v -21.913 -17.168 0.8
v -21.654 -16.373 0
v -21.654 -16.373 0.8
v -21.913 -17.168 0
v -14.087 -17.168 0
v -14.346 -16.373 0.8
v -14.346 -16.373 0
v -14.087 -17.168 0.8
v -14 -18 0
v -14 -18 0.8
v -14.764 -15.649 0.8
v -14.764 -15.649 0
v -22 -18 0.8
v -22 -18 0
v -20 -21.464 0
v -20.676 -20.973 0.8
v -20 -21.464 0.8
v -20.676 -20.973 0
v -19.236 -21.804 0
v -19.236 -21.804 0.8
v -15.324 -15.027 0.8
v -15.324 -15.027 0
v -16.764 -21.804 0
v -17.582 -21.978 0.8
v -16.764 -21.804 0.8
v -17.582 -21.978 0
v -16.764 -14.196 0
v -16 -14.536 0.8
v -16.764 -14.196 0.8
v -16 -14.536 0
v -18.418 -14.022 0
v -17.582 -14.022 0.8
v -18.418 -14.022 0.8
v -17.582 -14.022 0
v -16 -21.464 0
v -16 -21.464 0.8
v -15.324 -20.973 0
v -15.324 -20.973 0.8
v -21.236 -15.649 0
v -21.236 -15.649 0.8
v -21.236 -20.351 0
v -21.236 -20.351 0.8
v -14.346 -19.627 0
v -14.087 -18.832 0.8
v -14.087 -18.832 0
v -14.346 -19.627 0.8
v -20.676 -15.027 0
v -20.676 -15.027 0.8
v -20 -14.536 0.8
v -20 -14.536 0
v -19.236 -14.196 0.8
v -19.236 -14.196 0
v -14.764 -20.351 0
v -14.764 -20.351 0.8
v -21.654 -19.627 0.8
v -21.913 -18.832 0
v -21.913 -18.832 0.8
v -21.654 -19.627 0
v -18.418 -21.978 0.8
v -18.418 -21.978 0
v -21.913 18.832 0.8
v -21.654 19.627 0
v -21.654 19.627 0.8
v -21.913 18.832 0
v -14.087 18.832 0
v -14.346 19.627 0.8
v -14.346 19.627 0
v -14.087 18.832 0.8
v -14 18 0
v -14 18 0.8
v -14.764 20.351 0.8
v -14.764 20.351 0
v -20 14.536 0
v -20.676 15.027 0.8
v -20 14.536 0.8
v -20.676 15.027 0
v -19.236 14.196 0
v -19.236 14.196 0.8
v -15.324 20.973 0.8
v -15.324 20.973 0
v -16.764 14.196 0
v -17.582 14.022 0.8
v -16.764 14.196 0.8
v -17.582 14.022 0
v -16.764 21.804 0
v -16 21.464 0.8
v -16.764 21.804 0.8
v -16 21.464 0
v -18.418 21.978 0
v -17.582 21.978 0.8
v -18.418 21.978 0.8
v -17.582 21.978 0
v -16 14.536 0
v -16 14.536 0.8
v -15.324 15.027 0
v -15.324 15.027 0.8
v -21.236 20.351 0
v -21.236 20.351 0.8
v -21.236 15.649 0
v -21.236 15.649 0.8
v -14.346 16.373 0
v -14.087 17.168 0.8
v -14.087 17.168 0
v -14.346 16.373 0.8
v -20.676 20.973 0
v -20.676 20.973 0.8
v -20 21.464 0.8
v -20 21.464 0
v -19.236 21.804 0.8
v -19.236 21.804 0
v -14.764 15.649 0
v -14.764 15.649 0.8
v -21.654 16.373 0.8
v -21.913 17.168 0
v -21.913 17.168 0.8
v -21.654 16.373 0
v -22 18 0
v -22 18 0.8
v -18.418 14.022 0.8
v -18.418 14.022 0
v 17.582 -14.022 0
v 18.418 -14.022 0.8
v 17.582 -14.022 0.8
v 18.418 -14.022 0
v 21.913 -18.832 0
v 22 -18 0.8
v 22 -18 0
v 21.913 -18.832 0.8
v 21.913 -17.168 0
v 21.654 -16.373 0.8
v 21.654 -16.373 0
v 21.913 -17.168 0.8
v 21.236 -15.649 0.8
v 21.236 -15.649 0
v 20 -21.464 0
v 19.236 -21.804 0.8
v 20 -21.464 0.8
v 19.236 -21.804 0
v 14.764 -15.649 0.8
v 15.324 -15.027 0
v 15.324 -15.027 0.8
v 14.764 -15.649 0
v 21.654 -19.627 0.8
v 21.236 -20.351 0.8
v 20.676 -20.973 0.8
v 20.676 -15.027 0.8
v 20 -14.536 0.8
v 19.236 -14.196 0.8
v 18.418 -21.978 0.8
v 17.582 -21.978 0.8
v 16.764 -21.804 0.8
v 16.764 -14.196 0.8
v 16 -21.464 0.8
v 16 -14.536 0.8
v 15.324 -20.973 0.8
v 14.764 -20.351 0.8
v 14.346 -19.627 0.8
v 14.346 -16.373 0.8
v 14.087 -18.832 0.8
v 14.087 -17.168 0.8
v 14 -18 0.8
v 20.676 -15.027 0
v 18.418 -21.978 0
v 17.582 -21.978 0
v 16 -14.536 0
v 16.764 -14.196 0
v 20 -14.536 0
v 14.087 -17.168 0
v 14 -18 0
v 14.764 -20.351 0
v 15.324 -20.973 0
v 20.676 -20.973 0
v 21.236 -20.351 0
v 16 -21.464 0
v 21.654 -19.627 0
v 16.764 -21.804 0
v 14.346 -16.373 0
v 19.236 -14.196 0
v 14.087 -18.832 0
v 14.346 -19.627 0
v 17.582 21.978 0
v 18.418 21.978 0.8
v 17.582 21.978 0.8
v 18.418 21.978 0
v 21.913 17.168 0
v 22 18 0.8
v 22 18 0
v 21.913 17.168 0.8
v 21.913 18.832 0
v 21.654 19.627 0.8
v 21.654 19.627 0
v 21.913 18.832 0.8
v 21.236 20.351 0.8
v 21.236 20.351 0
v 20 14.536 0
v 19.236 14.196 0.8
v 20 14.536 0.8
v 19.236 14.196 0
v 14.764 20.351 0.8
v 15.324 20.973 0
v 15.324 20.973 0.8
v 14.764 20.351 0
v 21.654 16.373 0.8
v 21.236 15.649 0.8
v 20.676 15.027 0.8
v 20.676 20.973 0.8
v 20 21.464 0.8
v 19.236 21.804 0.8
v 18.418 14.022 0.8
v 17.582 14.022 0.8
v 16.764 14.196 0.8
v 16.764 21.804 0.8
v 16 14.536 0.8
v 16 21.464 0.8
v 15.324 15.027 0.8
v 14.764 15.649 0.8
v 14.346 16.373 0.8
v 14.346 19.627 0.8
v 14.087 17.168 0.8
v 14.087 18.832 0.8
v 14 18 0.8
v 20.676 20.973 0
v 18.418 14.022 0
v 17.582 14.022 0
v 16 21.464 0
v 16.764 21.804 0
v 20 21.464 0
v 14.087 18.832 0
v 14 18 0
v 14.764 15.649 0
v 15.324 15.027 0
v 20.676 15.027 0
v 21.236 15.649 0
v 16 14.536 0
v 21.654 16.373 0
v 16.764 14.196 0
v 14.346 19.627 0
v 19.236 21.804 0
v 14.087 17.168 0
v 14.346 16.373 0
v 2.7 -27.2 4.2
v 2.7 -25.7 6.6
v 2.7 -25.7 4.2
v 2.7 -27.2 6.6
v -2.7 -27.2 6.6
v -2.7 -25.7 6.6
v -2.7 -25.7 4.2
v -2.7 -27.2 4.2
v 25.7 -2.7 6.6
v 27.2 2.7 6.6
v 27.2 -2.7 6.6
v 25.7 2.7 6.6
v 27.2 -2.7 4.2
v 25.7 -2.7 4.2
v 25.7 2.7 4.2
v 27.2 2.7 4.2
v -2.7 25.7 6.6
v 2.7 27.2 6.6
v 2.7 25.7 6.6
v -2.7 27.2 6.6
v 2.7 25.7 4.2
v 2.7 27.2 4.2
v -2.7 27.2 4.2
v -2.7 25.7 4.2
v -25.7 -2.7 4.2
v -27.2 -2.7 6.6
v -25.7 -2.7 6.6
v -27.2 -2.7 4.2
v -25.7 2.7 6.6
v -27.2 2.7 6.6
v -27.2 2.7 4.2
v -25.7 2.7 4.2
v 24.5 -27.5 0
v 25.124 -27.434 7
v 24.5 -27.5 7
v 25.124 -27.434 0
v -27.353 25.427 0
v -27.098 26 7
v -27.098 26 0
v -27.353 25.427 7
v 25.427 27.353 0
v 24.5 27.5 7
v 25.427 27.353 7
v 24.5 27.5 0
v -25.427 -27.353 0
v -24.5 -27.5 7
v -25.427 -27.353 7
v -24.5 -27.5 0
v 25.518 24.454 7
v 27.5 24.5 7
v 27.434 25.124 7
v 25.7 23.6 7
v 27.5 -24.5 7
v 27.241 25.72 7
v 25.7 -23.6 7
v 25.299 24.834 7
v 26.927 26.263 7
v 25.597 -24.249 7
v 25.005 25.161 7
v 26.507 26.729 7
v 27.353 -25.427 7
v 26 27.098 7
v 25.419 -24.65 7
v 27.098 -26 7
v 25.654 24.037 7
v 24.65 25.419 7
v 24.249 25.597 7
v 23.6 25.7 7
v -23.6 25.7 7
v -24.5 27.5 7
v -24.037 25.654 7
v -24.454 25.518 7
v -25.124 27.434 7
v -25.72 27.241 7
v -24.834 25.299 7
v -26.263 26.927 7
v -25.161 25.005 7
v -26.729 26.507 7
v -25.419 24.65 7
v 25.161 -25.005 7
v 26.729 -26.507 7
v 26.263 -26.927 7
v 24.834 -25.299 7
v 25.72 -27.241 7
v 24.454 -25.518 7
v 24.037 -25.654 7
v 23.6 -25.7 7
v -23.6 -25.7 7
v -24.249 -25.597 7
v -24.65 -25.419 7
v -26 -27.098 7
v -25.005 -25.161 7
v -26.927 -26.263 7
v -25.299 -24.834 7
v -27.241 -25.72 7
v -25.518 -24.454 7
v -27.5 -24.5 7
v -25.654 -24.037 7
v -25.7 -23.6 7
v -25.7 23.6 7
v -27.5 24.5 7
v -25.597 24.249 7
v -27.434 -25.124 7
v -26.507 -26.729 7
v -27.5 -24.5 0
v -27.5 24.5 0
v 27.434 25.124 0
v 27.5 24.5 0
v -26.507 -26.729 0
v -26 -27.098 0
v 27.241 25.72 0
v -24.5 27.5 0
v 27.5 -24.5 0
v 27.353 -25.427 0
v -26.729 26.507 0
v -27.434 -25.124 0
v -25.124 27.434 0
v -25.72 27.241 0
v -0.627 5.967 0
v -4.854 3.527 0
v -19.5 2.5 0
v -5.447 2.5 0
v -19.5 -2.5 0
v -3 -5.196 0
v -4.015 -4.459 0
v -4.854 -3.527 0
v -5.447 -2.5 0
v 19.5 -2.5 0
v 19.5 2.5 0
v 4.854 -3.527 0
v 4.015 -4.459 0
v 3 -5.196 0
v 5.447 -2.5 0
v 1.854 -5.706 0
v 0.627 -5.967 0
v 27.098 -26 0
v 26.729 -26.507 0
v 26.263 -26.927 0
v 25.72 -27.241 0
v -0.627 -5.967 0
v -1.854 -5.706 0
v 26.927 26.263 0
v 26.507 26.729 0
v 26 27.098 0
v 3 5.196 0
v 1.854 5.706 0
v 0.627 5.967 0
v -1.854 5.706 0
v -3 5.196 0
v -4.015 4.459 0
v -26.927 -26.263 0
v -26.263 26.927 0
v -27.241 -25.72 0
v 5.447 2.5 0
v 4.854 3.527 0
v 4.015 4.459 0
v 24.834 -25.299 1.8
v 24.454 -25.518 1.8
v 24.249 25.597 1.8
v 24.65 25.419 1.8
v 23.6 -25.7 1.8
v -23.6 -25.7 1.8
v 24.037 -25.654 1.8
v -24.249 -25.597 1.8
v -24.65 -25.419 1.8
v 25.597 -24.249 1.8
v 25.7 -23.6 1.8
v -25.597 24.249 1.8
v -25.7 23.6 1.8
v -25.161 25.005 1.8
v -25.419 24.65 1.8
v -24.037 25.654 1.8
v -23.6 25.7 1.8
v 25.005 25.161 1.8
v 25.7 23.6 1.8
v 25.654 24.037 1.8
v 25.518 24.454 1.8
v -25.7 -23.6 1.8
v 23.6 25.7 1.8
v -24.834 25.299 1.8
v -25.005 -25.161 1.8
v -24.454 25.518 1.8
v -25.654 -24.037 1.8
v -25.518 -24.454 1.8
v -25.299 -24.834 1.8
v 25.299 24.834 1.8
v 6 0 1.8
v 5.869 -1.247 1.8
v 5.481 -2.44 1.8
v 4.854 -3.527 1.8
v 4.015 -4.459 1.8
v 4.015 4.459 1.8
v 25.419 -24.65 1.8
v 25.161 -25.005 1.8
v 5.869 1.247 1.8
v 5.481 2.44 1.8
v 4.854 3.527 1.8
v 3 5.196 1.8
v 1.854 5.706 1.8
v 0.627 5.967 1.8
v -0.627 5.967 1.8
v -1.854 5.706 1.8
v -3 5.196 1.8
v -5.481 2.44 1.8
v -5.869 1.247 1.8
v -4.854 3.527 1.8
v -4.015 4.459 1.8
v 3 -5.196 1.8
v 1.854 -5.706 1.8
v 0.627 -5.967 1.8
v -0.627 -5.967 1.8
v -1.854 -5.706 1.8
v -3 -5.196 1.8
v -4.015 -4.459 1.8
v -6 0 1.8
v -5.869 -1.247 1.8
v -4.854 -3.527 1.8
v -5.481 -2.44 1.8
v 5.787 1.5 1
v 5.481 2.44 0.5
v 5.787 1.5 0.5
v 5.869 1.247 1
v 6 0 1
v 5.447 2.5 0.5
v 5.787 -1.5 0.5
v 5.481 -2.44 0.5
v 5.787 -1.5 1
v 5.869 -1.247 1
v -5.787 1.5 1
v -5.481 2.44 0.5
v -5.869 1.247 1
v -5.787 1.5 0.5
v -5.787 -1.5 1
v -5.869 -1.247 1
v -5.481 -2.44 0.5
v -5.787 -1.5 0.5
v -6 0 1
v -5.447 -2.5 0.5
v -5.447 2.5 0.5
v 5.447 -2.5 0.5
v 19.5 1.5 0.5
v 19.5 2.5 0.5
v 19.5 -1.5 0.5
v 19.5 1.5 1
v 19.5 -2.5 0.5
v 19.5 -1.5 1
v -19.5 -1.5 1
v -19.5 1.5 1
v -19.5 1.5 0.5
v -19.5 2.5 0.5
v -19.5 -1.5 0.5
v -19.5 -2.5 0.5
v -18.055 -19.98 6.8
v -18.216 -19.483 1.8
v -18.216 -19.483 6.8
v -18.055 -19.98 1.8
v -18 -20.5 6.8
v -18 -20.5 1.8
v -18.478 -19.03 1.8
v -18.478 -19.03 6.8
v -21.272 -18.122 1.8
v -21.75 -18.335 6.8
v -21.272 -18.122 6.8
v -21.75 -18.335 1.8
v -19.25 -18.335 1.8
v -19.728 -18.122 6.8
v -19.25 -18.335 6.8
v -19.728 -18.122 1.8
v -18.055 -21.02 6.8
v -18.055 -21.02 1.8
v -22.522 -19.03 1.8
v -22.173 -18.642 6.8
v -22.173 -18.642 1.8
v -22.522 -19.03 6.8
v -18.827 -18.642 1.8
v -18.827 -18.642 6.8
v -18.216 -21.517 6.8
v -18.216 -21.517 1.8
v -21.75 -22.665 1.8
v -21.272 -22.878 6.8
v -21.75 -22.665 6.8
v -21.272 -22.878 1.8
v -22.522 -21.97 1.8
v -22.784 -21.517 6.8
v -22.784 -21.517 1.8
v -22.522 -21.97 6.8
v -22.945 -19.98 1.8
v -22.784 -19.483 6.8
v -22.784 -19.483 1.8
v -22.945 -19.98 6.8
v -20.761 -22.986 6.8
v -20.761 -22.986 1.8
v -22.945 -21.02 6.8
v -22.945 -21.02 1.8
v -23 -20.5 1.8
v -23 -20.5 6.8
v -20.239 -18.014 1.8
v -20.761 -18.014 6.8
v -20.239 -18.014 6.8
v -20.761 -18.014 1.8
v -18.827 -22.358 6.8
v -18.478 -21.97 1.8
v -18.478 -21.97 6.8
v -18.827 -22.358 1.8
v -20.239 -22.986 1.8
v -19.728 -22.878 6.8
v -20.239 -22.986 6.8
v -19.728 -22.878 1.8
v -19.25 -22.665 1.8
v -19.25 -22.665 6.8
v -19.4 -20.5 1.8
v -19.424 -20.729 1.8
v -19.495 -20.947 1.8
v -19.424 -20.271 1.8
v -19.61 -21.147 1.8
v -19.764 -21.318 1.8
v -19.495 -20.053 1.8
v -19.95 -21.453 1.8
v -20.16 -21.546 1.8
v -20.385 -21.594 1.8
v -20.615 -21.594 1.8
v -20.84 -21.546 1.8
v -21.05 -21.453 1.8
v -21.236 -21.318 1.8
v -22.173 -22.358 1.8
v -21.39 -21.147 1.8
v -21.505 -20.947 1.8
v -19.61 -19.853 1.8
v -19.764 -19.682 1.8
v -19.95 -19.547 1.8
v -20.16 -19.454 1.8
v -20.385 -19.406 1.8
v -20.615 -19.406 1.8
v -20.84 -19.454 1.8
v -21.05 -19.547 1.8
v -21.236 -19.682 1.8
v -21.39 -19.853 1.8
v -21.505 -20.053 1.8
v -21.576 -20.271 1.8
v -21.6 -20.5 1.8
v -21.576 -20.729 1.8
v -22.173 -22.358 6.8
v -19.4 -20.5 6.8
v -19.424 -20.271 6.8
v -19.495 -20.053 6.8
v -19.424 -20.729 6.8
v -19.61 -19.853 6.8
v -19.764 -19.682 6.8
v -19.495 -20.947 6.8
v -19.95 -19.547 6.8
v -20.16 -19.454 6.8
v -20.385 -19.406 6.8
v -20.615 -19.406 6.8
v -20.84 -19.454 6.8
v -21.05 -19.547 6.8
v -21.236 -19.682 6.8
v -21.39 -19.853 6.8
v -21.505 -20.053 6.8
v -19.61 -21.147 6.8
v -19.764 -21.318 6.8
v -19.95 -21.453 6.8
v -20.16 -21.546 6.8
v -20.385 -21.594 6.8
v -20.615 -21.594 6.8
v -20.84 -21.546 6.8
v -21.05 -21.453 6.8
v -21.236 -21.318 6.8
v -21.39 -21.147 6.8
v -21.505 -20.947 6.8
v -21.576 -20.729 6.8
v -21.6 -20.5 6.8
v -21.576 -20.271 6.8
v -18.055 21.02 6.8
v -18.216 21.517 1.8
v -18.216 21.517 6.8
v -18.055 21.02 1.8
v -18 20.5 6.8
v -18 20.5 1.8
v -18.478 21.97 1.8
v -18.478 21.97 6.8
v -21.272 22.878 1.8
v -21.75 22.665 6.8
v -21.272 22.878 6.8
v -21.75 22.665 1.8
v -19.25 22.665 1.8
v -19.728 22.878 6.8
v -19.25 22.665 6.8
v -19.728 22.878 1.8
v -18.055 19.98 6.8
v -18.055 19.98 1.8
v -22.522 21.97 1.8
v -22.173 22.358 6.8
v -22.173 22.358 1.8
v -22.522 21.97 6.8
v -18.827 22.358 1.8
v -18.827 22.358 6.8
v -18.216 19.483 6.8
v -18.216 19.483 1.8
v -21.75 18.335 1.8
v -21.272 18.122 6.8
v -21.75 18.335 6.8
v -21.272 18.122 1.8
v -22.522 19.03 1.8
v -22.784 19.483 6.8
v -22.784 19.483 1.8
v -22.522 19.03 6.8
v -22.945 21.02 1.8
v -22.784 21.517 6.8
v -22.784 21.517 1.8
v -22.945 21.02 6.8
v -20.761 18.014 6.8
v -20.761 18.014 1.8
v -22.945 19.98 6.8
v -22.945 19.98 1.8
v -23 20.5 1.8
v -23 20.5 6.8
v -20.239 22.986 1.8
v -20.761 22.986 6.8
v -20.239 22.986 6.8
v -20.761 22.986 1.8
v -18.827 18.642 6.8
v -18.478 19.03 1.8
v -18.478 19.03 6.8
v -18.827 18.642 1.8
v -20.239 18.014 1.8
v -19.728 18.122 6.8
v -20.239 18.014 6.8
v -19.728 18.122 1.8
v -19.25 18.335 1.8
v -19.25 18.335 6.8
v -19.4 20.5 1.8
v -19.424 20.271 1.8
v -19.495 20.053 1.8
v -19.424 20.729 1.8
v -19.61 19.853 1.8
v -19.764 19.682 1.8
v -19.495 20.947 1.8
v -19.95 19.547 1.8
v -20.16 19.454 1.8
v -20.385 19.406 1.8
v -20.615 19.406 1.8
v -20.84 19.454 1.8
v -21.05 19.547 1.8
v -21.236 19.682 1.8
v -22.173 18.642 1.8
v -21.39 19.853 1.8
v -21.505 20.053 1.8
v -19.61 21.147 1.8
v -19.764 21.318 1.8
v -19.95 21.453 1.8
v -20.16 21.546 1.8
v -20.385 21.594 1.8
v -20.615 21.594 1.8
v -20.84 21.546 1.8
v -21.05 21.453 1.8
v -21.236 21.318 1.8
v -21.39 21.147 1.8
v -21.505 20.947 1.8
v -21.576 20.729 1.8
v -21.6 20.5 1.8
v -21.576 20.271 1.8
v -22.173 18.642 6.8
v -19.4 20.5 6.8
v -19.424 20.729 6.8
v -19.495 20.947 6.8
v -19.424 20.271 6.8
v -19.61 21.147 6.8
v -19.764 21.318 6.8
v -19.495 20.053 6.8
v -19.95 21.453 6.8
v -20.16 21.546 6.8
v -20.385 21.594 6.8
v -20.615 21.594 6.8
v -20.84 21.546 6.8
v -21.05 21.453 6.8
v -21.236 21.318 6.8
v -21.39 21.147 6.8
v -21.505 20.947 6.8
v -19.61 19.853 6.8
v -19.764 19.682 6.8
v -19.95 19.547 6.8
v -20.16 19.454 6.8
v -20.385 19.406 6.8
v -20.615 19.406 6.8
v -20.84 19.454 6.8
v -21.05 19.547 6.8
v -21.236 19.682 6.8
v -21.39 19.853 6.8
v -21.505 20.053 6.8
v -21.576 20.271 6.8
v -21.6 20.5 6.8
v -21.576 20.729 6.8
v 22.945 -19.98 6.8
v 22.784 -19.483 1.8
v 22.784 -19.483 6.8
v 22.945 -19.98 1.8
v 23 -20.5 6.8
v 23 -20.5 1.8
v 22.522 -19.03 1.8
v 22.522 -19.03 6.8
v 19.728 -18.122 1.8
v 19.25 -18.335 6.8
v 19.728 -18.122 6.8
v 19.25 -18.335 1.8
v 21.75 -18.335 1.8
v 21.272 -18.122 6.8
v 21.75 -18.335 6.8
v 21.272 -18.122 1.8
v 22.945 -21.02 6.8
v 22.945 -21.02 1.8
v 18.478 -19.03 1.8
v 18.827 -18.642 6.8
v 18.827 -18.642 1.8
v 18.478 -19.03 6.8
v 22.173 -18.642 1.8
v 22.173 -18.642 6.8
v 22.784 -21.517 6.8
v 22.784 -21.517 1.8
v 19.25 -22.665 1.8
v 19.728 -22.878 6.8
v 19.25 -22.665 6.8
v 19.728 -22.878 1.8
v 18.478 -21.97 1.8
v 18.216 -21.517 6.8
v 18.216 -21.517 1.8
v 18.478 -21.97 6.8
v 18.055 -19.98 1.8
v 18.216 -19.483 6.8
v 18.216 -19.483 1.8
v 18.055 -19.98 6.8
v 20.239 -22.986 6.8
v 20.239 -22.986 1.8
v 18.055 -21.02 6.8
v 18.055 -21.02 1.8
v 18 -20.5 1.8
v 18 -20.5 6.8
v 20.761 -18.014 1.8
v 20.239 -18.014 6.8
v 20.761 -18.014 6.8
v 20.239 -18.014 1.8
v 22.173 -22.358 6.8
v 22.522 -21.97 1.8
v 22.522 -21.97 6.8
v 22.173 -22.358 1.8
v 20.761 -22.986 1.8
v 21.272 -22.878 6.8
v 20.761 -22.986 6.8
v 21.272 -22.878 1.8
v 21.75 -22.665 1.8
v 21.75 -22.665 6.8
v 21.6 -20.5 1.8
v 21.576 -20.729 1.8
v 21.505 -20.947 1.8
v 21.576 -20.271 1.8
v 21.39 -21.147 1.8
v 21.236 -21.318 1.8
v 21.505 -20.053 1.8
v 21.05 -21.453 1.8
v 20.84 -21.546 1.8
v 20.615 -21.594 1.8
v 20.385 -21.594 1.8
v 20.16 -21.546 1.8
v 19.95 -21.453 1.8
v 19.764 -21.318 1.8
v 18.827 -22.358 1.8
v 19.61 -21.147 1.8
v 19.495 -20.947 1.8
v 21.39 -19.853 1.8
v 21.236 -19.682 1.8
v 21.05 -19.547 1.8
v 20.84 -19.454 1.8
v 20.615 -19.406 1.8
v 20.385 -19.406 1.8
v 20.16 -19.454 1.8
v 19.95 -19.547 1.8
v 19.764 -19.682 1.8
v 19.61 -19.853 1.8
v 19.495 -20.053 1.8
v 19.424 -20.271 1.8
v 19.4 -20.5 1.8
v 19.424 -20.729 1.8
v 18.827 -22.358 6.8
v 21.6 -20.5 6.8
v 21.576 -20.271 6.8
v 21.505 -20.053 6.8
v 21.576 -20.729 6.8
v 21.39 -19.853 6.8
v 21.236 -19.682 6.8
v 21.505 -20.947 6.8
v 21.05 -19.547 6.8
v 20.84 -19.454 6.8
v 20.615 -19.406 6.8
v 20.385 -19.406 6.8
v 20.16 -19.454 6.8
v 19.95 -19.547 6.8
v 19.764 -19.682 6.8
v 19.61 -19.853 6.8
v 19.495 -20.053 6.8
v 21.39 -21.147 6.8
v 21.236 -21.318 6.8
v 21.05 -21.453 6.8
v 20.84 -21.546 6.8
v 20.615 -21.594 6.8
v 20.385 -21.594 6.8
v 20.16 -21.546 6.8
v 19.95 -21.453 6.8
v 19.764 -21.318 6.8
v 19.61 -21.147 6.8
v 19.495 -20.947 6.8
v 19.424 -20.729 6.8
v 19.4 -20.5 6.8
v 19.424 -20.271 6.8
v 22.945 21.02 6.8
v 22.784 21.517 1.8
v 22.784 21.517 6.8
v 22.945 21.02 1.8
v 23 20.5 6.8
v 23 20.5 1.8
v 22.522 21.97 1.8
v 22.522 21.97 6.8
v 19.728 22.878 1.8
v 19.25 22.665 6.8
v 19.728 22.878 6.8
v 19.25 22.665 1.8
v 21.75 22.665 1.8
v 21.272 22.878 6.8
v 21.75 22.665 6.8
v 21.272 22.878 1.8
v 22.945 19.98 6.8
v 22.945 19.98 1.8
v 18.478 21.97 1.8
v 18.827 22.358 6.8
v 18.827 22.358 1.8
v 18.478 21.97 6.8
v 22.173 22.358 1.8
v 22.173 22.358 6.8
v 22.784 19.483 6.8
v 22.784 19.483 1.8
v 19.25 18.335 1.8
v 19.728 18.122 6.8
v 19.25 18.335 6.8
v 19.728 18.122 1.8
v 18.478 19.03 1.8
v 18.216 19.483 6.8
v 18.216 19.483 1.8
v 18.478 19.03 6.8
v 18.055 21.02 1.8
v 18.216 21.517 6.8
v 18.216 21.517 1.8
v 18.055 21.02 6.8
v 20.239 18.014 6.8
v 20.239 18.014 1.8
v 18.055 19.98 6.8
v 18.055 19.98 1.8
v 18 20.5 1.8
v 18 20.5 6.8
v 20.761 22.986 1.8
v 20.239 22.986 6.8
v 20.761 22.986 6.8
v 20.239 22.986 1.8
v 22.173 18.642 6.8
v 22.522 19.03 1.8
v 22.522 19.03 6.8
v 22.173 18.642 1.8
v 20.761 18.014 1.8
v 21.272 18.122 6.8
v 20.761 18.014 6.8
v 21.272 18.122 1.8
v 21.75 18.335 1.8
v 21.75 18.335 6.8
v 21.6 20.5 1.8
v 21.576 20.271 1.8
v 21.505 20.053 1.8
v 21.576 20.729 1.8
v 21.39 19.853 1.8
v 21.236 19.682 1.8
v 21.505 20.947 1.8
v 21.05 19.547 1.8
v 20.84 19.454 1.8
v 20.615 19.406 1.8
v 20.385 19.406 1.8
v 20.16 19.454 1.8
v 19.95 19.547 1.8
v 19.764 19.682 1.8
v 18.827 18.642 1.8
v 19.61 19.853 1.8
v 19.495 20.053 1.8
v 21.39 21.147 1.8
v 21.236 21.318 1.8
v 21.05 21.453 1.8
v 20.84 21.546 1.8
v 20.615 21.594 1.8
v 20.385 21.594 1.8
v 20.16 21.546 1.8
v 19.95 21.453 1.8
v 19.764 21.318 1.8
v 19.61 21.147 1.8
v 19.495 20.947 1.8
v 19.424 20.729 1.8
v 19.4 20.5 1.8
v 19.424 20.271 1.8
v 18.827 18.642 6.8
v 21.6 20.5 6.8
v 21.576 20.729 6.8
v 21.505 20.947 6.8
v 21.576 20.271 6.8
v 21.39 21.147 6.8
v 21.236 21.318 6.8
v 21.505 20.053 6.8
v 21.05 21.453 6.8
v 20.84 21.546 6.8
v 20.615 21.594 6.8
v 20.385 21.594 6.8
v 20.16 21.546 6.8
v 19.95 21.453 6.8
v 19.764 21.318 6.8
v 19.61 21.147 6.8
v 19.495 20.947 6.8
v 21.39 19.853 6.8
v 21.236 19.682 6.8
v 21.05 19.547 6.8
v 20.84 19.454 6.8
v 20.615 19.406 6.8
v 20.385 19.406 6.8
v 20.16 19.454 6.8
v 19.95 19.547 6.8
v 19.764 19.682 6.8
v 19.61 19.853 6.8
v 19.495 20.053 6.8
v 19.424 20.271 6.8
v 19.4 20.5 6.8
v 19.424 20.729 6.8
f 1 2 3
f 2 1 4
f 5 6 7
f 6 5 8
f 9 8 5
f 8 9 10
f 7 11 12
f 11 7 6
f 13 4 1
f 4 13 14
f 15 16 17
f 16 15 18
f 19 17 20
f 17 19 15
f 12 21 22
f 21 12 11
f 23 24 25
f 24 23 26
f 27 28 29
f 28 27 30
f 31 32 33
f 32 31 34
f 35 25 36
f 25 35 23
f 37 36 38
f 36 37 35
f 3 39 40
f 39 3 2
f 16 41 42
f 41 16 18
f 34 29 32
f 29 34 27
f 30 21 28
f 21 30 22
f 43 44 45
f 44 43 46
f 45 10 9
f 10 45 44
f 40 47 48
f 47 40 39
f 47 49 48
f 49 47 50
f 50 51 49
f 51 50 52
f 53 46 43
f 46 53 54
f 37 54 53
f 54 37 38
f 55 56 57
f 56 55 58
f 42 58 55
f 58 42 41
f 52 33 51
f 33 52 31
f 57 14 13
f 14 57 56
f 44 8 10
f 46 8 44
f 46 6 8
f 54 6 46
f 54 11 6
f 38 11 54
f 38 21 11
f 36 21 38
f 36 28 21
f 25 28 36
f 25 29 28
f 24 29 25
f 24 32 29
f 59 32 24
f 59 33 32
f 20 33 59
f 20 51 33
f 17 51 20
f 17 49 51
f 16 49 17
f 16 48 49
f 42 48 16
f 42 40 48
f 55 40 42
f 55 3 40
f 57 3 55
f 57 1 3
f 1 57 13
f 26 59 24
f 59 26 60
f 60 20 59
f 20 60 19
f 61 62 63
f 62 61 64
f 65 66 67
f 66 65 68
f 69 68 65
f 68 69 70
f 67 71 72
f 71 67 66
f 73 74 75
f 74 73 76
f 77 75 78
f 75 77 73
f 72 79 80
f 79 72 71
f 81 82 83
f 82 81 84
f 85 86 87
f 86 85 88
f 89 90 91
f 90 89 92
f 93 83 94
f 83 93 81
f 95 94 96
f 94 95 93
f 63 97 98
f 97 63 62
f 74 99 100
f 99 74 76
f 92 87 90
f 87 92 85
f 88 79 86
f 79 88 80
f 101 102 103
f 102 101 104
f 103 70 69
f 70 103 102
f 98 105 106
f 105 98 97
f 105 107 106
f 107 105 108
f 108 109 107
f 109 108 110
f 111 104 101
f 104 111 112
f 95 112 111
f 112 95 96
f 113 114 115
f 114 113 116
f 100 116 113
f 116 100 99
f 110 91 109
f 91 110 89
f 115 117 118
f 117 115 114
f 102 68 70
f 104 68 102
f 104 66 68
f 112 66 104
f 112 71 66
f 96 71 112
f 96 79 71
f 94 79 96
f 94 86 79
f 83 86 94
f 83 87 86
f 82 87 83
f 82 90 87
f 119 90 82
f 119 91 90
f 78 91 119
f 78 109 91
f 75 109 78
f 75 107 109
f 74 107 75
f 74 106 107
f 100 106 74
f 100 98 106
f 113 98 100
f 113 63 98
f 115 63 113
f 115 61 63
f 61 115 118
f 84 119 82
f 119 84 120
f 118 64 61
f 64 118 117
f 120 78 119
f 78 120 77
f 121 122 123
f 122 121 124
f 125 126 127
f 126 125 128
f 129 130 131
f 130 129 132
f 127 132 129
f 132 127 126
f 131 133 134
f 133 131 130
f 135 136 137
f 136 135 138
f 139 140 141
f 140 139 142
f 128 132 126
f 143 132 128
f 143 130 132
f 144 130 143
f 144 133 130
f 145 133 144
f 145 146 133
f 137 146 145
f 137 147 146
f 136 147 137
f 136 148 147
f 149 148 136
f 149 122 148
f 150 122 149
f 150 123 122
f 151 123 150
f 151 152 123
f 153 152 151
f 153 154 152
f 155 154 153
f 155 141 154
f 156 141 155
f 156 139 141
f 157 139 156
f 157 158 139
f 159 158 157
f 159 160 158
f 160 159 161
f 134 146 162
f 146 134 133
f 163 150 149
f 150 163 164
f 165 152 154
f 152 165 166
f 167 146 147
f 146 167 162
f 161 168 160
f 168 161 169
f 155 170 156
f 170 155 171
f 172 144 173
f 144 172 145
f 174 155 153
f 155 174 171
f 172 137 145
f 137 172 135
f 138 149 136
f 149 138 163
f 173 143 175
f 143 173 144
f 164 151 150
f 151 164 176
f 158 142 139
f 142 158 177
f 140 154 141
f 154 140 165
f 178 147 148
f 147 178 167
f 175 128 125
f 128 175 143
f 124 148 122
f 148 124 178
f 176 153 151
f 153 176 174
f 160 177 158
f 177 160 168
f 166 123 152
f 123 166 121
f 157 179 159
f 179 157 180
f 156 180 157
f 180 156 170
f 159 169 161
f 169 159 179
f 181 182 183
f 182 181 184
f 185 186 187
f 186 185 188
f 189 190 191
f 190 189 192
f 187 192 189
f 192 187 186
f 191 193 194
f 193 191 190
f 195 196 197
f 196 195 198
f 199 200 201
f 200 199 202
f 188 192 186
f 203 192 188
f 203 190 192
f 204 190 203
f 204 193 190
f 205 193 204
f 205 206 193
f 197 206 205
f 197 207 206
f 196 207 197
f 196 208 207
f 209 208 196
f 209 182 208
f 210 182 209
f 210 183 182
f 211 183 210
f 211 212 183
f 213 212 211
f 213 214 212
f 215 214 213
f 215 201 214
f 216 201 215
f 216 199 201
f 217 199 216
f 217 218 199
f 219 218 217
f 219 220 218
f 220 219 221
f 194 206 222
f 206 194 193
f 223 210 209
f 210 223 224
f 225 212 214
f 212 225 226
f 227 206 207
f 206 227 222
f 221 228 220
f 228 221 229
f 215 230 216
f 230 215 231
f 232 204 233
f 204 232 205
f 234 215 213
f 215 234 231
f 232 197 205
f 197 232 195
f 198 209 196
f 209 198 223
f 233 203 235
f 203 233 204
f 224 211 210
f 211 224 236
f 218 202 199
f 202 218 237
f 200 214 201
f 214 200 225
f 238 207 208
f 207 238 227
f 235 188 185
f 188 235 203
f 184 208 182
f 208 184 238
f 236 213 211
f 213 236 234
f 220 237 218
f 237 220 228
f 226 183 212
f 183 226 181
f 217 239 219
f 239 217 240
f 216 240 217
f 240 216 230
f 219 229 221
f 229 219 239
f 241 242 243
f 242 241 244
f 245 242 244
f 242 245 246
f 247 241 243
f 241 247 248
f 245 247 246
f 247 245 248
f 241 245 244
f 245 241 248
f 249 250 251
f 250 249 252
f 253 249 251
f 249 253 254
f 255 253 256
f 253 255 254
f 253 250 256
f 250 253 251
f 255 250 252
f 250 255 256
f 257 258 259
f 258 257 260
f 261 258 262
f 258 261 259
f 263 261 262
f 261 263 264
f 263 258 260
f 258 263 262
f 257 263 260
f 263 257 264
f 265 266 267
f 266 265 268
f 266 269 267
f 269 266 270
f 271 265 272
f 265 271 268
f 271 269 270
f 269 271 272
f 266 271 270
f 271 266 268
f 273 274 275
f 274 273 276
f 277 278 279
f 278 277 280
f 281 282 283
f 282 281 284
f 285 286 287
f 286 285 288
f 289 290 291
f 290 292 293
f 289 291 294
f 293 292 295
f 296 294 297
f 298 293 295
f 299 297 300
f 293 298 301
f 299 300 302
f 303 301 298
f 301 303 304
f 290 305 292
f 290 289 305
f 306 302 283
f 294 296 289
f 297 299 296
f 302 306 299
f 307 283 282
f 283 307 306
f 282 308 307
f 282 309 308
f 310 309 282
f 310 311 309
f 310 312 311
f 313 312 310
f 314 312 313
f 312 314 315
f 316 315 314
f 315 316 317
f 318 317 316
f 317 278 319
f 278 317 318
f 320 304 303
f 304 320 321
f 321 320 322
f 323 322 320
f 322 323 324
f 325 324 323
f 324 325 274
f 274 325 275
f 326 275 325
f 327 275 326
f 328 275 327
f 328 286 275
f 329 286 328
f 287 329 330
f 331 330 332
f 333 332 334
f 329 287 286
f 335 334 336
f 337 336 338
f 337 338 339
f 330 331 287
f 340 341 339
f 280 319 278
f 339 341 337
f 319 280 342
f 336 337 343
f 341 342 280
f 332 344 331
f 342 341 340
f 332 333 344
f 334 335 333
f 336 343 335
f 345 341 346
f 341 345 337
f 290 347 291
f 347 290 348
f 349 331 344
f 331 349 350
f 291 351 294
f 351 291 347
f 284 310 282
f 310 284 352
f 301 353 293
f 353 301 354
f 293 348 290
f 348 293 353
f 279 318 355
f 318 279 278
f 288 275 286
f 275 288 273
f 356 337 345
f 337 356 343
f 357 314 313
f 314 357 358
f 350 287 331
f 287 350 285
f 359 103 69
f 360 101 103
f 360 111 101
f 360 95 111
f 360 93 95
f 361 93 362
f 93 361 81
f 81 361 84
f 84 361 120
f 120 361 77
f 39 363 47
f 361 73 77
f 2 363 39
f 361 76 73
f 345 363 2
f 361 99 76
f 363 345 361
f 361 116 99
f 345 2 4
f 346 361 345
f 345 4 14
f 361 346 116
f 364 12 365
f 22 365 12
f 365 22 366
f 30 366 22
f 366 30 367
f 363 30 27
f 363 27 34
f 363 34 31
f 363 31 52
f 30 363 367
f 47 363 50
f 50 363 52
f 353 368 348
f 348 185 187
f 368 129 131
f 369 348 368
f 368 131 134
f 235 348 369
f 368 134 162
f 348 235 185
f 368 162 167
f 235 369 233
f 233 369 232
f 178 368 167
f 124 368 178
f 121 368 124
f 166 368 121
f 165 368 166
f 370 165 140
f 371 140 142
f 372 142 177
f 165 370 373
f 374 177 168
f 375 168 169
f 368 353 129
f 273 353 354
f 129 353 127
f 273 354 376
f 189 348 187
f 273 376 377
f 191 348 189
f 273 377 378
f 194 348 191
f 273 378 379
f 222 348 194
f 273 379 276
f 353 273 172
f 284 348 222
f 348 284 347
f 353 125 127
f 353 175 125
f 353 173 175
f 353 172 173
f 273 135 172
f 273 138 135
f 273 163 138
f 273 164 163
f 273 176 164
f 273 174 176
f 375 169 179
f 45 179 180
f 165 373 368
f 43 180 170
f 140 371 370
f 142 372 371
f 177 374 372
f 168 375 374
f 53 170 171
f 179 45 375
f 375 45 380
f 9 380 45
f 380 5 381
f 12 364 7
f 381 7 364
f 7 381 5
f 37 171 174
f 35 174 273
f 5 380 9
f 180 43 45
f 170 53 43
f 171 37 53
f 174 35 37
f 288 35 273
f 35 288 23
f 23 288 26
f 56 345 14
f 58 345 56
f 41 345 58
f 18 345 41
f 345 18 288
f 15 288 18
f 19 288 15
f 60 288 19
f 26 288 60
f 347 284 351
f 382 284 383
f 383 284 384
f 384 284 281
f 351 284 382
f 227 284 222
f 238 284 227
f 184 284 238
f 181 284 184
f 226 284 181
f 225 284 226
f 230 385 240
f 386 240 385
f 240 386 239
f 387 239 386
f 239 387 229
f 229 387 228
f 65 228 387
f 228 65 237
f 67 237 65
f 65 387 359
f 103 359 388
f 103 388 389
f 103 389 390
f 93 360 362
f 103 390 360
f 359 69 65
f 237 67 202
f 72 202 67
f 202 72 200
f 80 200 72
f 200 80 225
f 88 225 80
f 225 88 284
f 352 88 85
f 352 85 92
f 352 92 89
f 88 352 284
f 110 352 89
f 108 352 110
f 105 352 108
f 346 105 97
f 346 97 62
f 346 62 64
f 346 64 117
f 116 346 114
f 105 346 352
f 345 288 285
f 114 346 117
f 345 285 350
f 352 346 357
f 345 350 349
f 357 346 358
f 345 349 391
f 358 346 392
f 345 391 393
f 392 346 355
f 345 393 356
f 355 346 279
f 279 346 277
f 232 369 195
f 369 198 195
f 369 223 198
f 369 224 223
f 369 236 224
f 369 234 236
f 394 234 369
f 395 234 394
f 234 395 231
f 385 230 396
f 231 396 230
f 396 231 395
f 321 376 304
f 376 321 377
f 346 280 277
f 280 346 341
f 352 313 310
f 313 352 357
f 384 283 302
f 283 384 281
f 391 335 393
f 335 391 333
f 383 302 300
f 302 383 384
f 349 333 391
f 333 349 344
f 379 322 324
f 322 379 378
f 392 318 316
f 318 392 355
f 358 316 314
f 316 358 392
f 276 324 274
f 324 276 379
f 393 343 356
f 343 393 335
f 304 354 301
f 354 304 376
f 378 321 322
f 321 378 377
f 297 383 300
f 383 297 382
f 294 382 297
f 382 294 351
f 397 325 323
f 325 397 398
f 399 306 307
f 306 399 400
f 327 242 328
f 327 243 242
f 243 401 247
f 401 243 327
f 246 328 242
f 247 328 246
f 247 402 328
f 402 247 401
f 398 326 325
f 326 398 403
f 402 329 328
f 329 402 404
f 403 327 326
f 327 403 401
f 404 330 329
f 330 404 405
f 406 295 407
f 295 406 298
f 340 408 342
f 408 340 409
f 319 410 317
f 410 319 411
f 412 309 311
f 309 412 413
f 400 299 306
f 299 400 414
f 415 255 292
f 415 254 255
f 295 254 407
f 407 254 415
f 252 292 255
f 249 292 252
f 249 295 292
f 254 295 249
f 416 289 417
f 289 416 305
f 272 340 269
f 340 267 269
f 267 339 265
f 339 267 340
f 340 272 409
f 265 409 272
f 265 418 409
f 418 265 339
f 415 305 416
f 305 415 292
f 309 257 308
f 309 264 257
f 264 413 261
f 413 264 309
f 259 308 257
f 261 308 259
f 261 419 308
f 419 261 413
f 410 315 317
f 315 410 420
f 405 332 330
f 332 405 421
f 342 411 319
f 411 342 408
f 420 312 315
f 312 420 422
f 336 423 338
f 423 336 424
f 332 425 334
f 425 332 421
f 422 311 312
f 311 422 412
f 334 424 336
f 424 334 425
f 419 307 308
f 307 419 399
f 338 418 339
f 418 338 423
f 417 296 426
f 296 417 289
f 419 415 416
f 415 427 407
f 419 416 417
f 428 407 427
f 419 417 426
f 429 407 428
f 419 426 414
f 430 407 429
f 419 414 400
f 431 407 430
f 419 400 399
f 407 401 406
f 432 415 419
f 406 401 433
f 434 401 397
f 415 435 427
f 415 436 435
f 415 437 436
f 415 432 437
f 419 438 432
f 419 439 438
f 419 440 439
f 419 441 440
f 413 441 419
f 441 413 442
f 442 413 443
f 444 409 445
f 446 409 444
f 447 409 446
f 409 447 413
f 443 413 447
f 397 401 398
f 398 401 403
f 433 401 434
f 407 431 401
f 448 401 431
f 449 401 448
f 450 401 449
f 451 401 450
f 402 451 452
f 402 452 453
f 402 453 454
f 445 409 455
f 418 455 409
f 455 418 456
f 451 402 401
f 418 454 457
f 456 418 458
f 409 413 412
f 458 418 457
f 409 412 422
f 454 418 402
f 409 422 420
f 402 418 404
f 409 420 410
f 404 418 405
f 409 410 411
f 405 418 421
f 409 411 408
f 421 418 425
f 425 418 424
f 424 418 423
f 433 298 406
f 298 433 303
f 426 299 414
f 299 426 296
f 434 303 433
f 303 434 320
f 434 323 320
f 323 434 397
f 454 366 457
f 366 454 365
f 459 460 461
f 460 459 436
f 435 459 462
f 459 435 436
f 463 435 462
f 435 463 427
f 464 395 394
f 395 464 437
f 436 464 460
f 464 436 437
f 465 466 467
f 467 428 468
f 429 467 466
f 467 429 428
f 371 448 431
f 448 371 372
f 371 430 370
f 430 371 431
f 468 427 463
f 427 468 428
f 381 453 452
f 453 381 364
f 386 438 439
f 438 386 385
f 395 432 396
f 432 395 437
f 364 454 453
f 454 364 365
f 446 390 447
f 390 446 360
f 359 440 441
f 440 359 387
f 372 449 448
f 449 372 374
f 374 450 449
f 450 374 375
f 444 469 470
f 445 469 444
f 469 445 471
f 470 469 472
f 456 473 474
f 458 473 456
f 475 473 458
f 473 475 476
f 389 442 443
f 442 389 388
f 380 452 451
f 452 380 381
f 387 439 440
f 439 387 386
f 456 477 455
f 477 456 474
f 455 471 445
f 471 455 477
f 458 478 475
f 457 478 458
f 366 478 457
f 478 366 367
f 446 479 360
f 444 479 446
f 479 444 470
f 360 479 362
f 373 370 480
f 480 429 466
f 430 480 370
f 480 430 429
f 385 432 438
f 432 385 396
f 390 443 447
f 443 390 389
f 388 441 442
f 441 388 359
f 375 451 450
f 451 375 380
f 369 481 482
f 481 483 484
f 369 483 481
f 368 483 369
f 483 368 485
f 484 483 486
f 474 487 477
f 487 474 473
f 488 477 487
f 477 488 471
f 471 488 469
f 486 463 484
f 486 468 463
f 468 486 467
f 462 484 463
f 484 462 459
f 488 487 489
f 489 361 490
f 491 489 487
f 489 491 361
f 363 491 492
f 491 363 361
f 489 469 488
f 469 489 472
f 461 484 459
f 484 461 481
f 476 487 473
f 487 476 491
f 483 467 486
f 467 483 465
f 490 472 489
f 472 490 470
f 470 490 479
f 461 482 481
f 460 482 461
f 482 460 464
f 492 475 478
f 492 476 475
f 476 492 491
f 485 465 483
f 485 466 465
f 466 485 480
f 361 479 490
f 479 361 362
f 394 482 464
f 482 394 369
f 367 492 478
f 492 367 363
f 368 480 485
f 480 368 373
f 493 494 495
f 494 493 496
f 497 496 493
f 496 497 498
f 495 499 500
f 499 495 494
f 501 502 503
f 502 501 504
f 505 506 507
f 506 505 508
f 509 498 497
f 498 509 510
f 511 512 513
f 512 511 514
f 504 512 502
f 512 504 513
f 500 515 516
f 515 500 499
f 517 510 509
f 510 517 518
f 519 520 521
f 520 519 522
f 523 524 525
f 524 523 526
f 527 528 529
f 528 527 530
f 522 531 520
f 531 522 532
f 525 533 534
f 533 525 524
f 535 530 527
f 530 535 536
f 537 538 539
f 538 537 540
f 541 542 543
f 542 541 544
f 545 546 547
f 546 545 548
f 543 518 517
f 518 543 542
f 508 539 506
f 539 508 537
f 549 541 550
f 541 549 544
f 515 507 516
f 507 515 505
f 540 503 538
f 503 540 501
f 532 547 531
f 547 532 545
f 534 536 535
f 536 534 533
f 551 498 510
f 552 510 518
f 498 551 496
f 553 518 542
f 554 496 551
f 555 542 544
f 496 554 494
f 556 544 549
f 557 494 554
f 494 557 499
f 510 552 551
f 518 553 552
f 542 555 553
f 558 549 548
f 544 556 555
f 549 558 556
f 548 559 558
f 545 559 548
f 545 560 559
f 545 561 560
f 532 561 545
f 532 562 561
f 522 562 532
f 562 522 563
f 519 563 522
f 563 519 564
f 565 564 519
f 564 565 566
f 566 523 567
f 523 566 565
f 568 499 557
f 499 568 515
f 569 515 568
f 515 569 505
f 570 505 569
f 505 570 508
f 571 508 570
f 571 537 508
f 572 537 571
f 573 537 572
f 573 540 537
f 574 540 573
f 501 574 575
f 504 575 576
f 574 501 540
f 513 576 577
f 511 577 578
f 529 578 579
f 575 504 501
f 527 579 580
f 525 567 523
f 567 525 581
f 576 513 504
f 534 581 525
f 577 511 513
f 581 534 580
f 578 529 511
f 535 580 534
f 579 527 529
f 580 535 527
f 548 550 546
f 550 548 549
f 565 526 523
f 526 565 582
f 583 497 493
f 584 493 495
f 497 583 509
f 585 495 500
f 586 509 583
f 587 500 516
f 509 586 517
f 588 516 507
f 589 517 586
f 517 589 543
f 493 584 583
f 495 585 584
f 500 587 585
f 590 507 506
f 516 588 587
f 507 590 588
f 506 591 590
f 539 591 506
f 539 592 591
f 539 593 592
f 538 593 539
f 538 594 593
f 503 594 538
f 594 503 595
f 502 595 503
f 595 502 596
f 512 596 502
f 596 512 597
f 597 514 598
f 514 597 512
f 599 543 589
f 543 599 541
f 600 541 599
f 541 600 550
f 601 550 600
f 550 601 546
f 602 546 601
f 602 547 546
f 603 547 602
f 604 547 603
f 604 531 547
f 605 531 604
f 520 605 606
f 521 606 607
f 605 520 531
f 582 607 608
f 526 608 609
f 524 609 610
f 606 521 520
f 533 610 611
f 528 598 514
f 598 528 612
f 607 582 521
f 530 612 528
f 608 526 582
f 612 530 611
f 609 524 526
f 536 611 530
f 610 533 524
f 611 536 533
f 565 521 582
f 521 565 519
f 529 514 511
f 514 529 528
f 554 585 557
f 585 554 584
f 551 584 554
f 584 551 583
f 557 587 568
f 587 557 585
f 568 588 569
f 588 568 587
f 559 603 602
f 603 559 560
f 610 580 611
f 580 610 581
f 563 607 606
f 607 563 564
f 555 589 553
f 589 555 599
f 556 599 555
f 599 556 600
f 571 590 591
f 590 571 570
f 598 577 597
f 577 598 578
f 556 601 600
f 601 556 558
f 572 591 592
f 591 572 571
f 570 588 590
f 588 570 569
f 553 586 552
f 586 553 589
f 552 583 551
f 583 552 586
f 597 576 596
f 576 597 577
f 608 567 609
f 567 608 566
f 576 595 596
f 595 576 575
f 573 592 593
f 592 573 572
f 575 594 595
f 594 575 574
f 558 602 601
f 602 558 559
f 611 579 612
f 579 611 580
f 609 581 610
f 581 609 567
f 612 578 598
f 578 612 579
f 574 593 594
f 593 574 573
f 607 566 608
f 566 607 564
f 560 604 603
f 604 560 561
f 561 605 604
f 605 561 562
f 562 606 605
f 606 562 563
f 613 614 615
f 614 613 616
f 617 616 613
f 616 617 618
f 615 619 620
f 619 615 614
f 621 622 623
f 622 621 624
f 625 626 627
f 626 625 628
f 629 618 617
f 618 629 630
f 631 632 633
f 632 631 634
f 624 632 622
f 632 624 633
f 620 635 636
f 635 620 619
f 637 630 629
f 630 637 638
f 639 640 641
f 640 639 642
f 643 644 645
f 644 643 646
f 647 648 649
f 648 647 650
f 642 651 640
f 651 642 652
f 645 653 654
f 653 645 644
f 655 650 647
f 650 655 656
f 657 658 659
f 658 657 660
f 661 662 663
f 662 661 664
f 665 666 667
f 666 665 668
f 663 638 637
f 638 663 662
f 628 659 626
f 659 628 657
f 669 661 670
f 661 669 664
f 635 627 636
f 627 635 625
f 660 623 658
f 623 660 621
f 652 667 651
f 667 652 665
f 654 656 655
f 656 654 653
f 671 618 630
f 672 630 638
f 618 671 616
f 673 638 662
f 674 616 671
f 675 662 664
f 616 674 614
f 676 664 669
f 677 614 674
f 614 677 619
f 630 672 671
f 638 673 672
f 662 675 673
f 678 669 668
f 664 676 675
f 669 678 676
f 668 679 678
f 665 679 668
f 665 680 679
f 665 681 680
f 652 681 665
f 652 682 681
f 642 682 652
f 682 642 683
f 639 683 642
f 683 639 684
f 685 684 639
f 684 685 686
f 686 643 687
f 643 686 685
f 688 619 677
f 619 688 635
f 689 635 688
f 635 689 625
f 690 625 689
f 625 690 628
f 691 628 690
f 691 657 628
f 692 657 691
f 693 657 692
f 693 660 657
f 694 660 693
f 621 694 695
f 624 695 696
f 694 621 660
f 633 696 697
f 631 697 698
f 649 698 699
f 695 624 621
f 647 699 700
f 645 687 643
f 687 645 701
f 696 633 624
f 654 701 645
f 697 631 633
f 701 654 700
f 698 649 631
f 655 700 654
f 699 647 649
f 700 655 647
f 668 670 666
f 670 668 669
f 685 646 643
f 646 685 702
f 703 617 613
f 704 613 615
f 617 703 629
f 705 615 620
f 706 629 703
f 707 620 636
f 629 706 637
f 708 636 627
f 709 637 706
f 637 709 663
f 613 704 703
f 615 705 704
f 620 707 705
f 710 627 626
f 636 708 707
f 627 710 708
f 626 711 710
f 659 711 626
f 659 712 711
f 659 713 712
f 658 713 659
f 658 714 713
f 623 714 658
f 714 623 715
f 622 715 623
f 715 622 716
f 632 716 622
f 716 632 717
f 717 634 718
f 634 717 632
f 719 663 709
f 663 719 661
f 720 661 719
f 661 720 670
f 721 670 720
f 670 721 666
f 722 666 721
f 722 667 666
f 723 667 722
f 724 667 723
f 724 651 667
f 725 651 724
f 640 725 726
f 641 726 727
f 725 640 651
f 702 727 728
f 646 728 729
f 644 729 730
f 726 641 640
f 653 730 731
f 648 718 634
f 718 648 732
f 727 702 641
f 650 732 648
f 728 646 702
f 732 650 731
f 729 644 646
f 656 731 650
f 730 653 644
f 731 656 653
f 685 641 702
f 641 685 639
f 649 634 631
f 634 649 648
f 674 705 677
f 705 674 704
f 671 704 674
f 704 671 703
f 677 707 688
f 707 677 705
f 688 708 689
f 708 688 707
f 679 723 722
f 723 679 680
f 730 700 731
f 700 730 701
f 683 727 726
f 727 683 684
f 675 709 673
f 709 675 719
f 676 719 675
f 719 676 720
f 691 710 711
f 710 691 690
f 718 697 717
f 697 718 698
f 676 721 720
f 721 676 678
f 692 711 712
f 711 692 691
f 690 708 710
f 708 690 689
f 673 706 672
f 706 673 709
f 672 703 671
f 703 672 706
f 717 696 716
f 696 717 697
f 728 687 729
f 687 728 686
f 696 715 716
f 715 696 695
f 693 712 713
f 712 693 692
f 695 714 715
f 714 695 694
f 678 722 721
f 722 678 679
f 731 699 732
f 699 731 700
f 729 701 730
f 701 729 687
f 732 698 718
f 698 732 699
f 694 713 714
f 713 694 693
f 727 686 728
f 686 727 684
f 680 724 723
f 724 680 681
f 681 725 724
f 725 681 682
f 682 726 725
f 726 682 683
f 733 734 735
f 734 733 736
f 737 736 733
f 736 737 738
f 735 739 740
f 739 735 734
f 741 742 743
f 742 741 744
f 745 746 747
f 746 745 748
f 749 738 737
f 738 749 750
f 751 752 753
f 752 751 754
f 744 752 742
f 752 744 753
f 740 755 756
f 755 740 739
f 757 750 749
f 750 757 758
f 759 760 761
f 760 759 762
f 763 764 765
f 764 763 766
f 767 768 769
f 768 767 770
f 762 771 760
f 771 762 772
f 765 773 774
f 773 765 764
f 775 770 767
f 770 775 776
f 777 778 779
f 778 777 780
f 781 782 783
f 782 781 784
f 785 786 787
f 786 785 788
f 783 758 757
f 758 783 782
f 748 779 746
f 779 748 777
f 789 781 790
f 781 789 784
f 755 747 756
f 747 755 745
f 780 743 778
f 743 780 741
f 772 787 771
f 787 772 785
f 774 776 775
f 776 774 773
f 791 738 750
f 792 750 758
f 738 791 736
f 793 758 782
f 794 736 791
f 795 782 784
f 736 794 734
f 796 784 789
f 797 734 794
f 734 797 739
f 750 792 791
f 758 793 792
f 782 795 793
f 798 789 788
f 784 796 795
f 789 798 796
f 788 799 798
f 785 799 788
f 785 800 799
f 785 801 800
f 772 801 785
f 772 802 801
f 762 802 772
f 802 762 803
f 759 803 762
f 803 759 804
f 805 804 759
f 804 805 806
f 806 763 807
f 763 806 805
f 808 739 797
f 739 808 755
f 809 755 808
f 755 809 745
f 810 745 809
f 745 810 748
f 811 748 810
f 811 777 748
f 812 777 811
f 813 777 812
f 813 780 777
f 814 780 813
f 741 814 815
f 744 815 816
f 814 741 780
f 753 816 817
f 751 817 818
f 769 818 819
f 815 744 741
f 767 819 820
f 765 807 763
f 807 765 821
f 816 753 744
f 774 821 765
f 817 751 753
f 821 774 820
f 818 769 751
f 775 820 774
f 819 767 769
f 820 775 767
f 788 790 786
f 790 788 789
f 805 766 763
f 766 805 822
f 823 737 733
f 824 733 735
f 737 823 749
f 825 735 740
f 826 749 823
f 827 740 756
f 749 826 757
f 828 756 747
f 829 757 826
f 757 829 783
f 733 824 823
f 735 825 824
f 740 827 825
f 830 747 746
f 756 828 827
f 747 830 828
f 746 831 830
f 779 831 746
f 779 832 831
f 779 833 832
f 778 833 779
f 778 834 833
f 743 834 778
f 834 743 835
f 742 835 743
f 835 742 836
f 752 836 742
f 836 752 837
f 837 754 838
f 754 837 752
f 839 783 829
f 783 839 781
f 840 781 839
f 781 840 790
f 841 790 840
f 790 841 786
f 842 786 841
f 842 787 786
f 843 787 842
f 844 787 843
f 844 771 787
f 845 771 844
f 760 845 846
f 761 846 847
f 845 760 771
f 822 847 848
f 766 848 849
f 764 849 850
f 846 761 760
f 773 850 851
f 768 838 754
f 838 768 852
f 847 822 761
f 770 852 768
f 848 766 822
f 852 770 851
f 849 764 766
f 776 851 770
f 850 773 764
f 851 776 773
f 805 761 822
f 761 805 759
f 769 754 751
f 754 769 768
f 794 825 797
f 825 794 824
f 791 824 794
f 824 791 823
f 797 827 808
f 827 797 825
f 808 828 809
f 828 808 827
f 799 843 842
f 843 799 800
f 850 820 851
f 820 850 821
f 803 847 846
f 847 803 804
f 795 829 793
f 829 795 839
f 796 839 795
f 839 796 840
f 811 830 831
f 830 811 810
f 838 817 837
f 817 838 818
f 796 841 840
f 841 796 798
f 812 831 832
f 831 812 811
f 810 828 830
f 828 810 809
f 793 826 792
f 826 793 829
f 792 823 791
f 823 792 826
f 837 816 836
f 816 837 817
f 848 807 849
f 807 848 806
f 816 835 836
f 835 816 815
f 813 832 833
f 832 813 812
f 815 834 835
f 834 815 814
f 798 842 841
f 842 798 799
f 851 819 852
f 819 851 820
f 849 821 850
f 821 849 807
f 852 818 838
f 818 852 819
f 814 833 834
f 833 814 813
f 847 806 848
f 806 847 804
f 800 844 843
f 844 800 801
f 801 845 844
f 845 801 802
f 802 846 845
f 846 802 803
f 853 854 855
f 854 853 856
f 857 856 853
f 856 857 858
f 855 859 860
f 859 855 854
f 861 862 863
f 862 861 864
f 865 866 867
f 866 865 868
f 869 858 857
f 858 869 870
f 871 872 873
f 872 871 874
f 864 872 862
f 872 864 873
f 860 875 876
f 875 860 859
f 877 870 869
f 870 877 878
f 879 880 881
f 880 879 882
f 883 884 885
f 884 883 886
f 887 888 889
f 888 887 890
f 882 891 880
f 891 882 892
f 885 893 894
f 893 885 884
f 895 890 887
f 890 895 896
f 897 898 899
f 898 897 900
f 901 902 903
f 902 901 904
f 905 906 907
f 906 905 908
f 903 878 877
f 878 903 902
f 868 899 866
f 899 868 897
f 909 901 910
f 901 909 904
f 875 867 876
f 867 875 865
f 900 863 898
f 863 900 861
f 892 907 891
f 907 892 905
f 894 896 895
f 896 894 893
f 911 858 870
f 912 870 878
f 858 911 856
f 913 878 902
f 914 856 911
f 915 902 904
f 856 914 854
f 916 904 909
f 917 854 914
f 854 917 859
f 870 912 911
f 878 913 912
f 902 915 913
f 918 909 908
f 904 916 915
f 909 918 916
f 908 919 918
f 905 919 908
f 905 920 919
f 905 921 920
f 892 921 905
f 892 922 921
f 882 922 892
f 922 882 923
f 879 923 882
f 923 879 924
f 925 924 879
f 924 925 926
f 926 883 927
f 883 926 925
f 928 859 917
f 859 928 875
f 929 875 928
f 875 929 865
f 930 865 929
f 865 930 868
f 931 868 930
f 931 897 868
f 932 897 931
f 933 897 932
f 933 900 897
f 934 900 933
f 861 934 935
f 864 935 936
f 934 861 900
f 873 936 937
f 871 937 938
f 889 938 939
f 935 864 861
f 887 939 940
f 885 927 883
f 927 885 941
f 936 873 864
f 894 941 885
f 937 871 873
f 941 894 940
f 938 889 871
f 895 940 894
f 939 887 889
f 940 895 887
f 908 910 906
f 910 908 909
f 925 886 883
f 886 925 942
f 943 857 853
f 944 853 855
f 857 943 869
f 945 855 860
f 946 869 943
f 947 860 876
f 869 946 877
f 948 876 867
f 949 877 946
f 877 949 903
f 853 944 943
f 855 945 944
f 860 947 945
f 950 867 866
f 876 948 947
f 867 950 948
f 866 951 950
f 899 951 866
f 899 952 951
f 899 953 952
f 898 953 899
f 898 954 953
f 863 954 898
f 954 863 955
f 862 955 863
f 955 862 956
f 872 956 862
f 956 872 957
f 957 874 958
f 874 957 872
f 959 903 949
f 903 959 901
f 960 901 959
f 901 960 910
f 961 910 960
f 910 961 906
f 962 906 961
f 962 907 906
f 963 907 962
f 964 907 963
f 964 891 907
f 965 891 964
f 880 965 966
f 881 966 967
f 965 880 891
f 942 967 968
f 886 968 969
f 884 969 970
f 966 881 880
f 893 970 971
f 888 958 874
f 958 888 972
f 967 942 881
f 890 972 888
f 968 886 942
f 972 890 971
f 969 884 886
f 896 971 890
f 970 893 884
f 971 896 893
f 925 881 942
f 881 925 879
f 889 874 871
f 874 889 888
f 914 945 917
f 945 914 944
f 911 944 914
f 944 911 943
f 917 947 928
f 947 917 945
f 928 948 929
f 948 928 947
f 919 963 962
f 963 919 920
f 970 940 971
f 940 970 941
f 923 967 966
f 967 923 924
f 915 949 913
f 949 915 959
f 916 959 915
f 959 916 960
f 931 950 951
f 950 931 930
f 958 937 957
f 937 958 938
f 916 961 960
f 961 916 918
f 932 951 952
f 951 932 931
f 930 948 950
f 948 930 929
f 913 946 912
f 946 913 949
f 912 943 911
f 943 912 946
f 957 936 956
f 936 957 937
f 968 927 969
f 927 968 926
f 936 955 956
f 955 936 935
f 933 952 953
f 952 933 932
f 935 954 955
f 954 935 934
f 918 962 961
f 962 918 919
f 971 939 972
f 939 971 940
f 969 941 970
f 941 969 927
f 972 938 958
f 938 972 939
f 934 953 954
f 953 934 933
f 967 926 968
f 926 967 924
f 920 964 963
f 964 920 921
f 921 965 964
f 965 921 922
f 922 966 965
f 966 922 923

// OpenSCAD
// RWC Energy Core - Square Edition
// Part 2: Bottom Shell
// 55x55mm, magnetic connector, T-rail, screw posts, snap slots
$fn = 30;

size = 55;
corner_r = 3;
wall = 1.8;
height = 7;
snap_w = 5.4;    // slightly wider than tab for clearance
snap_h = 2.2;
snap_d = 1.4;
screw_od = 5;
screw_id = 2.2;
screw_h = 5;
// Screw post positions (inset from corners)
post_inset = 7;

module rounded_square(s, r, h) {
    linear_extrude(h)
        offset(r) offset(-r)
            square(s, center=true);
}

module bottom_shell() {
    difference() {
        // Outer shell
        rounded_square(size, corner_r, height);
        
        // Hollow inside (leave bottom wall)
        translate([0, 0, wall])
            rounded_square(size - wall*2, corner_r - wall/2, height + 0.1);
        
        // RWC Bus magnetic connector recess (center bottom)
        translate([0, 0, -0.1])
            cylinder(d=12, h=2 + 0.1);
        
        // T-rail slot on bottom (along X axis)
        // Narrow part
        translate([-size/2 + 8, -1.5, -0.1])
            cube([size - 16, 3, 1.0 + 0.1]);
        // Wide part (T top)
        translate([-size/2 + 8, -2.5, -0.1])
            cube([size - 16, 5, 0.5 + 0.1]);
        
        // Silicone foot pads (4 corners, bottom)
        for (x = [-1, 1], y = [-1, 1])
            translate([x * 18, y * 18, -0.1])
                cylinder(d=8, h=0.8 + 0.1);
        
        // Snap fit slots (4x, matching top shell tabs)
        for (angle = [0, 90, 180, 270]) {
            rotate([0, 0, angle])
                translate([0, -size/2 + wall, height - snap_h - 0.5])
                    snap_slot();
        }
    }
    
    // Screw posts (4 corners)
    for (x = [-1, 1], y = [-1, 1])
        translate([x * (size/2 - post_inset), y * (size/2 - post_inset), wall])
            screw_post();
}

module screw_post() {
    difference() {
        cylinder(d=screw_od, h=screw_h);
        translate([0, 0, -0.1])
            cylinder(d=screw_id, h=screw_h + 0.2);
    }
}

module snap_slot() {
    translate([-snap_w/2, -snap_d - 0.1, -0.1])
        cube([snap_w, snap_d + 0.2, snap_h + 0.2]);
}

bottom_shell();
